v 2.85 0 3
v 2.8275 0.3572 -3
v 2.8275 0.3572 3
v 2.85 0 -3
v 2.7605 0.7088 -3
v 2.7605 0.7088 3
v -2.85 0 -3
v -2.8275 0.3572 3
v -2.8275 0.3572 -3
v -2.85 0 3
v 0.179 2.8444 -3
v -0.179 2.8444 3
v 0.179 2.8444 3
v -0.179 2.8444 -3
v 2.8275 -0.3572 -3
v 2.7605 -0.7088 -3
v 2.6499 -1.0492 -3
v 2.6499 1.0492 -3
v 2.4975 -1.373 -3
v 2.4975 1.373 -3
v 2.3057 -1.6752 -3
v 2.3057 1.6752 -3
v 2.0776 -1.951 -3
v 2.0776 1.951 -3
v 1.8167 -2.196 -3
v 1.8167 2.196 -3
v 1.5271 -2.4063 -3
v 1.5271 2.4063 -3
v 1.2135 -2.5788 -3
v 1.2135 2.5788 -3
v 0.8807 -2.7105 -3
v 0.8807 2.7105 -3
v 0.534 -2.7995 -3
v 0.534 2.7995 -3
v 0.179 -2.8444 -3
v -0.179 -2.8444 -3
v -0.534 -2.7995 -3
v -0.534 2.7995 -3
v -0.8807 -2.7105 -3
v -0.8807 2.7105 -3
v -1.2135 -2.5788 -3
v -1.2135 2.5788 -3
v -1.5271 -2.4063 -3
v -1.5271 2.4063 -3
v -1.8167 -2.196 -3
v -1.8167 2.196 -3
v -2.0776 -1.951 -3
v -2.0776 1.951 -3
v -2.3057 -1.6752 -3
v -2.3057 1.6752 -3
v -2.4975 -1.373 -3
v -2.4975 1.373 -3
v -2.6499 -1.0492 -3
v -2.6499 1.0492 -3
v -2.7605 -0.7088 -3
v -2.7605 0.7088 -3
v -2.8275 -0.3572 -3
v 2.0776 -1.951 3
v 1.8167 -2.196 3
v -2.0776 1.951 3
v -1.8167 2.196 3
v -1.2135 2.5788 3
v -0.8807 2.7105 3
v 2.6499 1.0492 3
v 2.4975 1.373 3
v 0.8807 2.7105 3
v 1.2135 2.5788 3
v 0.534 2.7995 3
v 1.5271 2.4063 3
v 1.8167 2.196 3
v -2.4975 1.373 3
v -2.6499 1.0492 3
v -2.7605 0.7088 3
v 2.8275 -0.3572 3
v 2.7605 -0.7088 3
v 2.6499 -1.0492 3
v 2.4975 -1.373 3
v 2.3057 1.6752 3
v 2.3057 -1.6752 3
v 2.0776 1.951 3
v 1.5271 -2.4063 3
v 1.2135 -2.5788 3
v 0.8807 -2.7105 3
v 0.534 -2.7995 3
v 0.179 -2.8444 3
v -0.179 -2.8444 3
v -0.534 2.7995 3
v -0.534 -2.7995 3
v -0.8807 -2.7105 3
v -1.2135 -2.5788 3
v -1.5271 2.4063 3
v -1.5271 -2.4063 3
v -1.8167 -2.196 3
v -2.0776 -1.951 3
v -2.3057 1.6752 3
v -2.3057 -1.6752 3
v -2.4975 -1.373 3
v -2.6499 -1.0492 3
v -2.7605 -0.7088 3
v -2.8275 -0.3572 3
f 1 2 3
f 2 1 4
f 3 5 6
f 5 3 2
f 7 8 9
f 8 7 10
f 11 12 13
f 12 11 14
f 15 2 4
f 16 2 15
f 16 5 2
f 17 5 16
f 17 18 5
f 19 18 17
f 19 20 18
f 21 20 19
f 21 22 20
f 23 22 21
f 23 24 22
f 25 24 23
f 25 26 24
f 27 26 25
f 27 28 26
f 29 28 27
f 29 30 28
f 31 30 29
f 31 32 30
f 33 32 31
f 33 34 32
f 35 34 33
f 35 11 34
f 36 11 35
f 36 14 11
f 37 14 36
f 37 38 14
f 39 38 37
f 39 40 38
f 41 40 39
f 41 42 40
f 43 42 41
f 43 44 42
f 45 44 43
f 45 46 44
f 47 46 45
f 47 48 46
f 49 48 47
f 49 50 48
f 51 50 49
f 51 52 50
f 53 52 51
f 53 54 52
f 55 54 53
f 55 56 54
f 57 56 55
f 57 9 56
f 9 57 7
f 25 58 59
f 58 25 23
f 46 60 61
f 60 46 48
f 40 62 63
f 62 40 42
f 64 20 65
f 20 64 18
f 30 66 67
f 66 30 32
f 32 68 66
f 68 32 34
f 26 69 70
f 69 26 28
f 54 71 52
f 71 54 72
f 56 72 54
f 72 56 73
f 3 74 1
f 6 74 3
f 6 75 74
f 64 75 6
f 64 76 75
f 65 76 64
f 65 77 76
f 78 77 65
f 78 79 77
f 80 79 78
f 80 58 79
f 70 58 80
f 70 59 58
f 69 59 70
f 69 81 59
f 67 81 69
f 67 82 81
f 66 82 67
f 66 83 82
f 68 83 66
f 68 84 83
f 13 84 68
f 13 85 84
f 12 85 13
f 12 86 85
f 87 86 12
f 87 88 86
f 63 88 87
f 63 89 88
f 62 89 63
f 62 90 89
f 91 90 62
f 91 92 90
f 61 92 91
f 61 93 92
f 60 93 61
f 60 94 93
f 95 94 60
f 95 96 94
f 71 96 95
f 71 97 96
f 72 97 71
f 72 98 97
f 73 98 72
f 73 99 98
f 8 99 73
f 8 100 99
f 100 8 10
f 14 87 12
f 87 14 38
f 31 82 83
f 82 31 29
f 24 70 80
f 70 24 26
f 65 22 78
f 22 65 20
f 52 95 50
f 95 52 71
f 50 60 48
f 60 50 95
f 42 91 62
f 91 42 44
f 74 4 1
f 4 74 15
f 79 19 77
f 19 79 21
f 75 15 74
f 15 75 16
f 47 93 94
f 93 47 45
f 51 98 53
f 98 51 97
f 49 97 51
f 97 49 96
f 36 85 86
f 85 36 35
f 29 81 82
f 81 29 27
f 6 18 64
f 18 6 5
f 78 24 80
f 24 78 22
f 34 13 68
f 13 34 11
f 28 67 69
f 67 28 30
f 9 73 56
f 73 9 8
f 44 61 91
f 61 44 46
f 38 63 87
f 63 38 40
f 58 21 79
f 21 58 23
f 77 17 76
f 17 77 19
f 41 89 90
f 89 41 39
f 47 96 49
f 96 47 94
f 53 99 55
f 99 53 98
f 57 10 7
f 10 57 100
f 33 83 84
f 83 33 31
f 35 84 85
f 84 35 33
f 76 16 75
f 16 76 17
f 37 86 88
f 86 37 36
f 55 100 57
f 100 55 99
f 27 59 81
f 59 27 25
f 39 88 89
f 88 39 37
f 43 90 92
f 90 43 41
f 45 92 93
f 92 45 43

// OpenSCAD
$fn = 50;


difference() {
	union() {
		translate(v = [0, 0, -3.0000000000]) {
			cylinder(h = 6, r = 2.8500000000);
		}
	}
	union() {
		translate(v = [0, 0, -100.0000000000]) {
			cylinder(h = 200, r = 0);
		}
	}
}
